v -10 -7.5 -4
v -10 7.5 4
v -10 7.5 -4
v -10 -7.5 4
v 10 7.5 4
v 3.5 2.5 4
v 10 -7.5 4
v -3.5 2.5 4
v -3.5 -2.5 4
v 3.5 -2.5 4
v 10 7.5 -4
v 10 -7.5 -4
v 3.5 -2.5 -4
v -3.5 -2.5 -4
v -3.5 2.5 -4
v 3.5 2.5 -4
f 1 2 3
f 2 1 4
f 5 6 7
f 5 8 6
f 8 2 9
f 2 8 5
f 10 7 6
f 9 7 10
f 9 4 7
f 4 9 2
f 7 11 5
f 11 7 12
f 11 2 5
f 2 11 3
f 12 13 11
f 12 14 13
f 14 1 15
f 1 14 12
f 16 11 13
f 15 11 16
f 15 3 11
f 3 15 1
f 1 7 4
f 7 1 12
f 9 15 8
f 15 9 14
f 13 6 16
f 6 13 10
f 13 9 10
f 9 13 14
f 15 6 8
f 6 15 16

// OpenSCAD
// file: BOSL2/std.scad
// Minimal BOSL2 compatibility shim for bundled gallery models.
// It implements only the helpers used by the imported OpenSCAD projects.

CENTER = [0, 0, 0];
BOTTOM = [0, 0, -1];
TOP = [0, 0, 1];
LEFT = [-1, 0, 0];
RIGHT = [1, 0, 0];
FRONT = [0, -1, 0];
BACK = [0, 1, 0];

module up(z=0) {
    translate([0, 0, z]) children();
}

module down(z=0) {
    translate([0, 0, -z]) children();
}

module attach(anchor=CENTER) {
    children();
}

module cuboid(size=[1, 1, 1], anchor=CENTER) {
    center = anchor == CENTER;
    translate(center ? [0, 0, 0] : [0, 0, size[2] / 2])
        cube(size, center=true);
    children();
}

module xcyl(h=1, r=1, anchor=CENTER) {
    center = anchor == CENTER;
    translate(center ? [0, 0, 0] : [h / 2, 0, 0])
        rotate([0, 90, 0])
            cylinder(h=h, r=r, center=true);
}
// main file
include <BOSL2/std.scad>

difference() {
    cuboid([20, 15, 8]);
    cuboid([7, 5, 9]);
}
